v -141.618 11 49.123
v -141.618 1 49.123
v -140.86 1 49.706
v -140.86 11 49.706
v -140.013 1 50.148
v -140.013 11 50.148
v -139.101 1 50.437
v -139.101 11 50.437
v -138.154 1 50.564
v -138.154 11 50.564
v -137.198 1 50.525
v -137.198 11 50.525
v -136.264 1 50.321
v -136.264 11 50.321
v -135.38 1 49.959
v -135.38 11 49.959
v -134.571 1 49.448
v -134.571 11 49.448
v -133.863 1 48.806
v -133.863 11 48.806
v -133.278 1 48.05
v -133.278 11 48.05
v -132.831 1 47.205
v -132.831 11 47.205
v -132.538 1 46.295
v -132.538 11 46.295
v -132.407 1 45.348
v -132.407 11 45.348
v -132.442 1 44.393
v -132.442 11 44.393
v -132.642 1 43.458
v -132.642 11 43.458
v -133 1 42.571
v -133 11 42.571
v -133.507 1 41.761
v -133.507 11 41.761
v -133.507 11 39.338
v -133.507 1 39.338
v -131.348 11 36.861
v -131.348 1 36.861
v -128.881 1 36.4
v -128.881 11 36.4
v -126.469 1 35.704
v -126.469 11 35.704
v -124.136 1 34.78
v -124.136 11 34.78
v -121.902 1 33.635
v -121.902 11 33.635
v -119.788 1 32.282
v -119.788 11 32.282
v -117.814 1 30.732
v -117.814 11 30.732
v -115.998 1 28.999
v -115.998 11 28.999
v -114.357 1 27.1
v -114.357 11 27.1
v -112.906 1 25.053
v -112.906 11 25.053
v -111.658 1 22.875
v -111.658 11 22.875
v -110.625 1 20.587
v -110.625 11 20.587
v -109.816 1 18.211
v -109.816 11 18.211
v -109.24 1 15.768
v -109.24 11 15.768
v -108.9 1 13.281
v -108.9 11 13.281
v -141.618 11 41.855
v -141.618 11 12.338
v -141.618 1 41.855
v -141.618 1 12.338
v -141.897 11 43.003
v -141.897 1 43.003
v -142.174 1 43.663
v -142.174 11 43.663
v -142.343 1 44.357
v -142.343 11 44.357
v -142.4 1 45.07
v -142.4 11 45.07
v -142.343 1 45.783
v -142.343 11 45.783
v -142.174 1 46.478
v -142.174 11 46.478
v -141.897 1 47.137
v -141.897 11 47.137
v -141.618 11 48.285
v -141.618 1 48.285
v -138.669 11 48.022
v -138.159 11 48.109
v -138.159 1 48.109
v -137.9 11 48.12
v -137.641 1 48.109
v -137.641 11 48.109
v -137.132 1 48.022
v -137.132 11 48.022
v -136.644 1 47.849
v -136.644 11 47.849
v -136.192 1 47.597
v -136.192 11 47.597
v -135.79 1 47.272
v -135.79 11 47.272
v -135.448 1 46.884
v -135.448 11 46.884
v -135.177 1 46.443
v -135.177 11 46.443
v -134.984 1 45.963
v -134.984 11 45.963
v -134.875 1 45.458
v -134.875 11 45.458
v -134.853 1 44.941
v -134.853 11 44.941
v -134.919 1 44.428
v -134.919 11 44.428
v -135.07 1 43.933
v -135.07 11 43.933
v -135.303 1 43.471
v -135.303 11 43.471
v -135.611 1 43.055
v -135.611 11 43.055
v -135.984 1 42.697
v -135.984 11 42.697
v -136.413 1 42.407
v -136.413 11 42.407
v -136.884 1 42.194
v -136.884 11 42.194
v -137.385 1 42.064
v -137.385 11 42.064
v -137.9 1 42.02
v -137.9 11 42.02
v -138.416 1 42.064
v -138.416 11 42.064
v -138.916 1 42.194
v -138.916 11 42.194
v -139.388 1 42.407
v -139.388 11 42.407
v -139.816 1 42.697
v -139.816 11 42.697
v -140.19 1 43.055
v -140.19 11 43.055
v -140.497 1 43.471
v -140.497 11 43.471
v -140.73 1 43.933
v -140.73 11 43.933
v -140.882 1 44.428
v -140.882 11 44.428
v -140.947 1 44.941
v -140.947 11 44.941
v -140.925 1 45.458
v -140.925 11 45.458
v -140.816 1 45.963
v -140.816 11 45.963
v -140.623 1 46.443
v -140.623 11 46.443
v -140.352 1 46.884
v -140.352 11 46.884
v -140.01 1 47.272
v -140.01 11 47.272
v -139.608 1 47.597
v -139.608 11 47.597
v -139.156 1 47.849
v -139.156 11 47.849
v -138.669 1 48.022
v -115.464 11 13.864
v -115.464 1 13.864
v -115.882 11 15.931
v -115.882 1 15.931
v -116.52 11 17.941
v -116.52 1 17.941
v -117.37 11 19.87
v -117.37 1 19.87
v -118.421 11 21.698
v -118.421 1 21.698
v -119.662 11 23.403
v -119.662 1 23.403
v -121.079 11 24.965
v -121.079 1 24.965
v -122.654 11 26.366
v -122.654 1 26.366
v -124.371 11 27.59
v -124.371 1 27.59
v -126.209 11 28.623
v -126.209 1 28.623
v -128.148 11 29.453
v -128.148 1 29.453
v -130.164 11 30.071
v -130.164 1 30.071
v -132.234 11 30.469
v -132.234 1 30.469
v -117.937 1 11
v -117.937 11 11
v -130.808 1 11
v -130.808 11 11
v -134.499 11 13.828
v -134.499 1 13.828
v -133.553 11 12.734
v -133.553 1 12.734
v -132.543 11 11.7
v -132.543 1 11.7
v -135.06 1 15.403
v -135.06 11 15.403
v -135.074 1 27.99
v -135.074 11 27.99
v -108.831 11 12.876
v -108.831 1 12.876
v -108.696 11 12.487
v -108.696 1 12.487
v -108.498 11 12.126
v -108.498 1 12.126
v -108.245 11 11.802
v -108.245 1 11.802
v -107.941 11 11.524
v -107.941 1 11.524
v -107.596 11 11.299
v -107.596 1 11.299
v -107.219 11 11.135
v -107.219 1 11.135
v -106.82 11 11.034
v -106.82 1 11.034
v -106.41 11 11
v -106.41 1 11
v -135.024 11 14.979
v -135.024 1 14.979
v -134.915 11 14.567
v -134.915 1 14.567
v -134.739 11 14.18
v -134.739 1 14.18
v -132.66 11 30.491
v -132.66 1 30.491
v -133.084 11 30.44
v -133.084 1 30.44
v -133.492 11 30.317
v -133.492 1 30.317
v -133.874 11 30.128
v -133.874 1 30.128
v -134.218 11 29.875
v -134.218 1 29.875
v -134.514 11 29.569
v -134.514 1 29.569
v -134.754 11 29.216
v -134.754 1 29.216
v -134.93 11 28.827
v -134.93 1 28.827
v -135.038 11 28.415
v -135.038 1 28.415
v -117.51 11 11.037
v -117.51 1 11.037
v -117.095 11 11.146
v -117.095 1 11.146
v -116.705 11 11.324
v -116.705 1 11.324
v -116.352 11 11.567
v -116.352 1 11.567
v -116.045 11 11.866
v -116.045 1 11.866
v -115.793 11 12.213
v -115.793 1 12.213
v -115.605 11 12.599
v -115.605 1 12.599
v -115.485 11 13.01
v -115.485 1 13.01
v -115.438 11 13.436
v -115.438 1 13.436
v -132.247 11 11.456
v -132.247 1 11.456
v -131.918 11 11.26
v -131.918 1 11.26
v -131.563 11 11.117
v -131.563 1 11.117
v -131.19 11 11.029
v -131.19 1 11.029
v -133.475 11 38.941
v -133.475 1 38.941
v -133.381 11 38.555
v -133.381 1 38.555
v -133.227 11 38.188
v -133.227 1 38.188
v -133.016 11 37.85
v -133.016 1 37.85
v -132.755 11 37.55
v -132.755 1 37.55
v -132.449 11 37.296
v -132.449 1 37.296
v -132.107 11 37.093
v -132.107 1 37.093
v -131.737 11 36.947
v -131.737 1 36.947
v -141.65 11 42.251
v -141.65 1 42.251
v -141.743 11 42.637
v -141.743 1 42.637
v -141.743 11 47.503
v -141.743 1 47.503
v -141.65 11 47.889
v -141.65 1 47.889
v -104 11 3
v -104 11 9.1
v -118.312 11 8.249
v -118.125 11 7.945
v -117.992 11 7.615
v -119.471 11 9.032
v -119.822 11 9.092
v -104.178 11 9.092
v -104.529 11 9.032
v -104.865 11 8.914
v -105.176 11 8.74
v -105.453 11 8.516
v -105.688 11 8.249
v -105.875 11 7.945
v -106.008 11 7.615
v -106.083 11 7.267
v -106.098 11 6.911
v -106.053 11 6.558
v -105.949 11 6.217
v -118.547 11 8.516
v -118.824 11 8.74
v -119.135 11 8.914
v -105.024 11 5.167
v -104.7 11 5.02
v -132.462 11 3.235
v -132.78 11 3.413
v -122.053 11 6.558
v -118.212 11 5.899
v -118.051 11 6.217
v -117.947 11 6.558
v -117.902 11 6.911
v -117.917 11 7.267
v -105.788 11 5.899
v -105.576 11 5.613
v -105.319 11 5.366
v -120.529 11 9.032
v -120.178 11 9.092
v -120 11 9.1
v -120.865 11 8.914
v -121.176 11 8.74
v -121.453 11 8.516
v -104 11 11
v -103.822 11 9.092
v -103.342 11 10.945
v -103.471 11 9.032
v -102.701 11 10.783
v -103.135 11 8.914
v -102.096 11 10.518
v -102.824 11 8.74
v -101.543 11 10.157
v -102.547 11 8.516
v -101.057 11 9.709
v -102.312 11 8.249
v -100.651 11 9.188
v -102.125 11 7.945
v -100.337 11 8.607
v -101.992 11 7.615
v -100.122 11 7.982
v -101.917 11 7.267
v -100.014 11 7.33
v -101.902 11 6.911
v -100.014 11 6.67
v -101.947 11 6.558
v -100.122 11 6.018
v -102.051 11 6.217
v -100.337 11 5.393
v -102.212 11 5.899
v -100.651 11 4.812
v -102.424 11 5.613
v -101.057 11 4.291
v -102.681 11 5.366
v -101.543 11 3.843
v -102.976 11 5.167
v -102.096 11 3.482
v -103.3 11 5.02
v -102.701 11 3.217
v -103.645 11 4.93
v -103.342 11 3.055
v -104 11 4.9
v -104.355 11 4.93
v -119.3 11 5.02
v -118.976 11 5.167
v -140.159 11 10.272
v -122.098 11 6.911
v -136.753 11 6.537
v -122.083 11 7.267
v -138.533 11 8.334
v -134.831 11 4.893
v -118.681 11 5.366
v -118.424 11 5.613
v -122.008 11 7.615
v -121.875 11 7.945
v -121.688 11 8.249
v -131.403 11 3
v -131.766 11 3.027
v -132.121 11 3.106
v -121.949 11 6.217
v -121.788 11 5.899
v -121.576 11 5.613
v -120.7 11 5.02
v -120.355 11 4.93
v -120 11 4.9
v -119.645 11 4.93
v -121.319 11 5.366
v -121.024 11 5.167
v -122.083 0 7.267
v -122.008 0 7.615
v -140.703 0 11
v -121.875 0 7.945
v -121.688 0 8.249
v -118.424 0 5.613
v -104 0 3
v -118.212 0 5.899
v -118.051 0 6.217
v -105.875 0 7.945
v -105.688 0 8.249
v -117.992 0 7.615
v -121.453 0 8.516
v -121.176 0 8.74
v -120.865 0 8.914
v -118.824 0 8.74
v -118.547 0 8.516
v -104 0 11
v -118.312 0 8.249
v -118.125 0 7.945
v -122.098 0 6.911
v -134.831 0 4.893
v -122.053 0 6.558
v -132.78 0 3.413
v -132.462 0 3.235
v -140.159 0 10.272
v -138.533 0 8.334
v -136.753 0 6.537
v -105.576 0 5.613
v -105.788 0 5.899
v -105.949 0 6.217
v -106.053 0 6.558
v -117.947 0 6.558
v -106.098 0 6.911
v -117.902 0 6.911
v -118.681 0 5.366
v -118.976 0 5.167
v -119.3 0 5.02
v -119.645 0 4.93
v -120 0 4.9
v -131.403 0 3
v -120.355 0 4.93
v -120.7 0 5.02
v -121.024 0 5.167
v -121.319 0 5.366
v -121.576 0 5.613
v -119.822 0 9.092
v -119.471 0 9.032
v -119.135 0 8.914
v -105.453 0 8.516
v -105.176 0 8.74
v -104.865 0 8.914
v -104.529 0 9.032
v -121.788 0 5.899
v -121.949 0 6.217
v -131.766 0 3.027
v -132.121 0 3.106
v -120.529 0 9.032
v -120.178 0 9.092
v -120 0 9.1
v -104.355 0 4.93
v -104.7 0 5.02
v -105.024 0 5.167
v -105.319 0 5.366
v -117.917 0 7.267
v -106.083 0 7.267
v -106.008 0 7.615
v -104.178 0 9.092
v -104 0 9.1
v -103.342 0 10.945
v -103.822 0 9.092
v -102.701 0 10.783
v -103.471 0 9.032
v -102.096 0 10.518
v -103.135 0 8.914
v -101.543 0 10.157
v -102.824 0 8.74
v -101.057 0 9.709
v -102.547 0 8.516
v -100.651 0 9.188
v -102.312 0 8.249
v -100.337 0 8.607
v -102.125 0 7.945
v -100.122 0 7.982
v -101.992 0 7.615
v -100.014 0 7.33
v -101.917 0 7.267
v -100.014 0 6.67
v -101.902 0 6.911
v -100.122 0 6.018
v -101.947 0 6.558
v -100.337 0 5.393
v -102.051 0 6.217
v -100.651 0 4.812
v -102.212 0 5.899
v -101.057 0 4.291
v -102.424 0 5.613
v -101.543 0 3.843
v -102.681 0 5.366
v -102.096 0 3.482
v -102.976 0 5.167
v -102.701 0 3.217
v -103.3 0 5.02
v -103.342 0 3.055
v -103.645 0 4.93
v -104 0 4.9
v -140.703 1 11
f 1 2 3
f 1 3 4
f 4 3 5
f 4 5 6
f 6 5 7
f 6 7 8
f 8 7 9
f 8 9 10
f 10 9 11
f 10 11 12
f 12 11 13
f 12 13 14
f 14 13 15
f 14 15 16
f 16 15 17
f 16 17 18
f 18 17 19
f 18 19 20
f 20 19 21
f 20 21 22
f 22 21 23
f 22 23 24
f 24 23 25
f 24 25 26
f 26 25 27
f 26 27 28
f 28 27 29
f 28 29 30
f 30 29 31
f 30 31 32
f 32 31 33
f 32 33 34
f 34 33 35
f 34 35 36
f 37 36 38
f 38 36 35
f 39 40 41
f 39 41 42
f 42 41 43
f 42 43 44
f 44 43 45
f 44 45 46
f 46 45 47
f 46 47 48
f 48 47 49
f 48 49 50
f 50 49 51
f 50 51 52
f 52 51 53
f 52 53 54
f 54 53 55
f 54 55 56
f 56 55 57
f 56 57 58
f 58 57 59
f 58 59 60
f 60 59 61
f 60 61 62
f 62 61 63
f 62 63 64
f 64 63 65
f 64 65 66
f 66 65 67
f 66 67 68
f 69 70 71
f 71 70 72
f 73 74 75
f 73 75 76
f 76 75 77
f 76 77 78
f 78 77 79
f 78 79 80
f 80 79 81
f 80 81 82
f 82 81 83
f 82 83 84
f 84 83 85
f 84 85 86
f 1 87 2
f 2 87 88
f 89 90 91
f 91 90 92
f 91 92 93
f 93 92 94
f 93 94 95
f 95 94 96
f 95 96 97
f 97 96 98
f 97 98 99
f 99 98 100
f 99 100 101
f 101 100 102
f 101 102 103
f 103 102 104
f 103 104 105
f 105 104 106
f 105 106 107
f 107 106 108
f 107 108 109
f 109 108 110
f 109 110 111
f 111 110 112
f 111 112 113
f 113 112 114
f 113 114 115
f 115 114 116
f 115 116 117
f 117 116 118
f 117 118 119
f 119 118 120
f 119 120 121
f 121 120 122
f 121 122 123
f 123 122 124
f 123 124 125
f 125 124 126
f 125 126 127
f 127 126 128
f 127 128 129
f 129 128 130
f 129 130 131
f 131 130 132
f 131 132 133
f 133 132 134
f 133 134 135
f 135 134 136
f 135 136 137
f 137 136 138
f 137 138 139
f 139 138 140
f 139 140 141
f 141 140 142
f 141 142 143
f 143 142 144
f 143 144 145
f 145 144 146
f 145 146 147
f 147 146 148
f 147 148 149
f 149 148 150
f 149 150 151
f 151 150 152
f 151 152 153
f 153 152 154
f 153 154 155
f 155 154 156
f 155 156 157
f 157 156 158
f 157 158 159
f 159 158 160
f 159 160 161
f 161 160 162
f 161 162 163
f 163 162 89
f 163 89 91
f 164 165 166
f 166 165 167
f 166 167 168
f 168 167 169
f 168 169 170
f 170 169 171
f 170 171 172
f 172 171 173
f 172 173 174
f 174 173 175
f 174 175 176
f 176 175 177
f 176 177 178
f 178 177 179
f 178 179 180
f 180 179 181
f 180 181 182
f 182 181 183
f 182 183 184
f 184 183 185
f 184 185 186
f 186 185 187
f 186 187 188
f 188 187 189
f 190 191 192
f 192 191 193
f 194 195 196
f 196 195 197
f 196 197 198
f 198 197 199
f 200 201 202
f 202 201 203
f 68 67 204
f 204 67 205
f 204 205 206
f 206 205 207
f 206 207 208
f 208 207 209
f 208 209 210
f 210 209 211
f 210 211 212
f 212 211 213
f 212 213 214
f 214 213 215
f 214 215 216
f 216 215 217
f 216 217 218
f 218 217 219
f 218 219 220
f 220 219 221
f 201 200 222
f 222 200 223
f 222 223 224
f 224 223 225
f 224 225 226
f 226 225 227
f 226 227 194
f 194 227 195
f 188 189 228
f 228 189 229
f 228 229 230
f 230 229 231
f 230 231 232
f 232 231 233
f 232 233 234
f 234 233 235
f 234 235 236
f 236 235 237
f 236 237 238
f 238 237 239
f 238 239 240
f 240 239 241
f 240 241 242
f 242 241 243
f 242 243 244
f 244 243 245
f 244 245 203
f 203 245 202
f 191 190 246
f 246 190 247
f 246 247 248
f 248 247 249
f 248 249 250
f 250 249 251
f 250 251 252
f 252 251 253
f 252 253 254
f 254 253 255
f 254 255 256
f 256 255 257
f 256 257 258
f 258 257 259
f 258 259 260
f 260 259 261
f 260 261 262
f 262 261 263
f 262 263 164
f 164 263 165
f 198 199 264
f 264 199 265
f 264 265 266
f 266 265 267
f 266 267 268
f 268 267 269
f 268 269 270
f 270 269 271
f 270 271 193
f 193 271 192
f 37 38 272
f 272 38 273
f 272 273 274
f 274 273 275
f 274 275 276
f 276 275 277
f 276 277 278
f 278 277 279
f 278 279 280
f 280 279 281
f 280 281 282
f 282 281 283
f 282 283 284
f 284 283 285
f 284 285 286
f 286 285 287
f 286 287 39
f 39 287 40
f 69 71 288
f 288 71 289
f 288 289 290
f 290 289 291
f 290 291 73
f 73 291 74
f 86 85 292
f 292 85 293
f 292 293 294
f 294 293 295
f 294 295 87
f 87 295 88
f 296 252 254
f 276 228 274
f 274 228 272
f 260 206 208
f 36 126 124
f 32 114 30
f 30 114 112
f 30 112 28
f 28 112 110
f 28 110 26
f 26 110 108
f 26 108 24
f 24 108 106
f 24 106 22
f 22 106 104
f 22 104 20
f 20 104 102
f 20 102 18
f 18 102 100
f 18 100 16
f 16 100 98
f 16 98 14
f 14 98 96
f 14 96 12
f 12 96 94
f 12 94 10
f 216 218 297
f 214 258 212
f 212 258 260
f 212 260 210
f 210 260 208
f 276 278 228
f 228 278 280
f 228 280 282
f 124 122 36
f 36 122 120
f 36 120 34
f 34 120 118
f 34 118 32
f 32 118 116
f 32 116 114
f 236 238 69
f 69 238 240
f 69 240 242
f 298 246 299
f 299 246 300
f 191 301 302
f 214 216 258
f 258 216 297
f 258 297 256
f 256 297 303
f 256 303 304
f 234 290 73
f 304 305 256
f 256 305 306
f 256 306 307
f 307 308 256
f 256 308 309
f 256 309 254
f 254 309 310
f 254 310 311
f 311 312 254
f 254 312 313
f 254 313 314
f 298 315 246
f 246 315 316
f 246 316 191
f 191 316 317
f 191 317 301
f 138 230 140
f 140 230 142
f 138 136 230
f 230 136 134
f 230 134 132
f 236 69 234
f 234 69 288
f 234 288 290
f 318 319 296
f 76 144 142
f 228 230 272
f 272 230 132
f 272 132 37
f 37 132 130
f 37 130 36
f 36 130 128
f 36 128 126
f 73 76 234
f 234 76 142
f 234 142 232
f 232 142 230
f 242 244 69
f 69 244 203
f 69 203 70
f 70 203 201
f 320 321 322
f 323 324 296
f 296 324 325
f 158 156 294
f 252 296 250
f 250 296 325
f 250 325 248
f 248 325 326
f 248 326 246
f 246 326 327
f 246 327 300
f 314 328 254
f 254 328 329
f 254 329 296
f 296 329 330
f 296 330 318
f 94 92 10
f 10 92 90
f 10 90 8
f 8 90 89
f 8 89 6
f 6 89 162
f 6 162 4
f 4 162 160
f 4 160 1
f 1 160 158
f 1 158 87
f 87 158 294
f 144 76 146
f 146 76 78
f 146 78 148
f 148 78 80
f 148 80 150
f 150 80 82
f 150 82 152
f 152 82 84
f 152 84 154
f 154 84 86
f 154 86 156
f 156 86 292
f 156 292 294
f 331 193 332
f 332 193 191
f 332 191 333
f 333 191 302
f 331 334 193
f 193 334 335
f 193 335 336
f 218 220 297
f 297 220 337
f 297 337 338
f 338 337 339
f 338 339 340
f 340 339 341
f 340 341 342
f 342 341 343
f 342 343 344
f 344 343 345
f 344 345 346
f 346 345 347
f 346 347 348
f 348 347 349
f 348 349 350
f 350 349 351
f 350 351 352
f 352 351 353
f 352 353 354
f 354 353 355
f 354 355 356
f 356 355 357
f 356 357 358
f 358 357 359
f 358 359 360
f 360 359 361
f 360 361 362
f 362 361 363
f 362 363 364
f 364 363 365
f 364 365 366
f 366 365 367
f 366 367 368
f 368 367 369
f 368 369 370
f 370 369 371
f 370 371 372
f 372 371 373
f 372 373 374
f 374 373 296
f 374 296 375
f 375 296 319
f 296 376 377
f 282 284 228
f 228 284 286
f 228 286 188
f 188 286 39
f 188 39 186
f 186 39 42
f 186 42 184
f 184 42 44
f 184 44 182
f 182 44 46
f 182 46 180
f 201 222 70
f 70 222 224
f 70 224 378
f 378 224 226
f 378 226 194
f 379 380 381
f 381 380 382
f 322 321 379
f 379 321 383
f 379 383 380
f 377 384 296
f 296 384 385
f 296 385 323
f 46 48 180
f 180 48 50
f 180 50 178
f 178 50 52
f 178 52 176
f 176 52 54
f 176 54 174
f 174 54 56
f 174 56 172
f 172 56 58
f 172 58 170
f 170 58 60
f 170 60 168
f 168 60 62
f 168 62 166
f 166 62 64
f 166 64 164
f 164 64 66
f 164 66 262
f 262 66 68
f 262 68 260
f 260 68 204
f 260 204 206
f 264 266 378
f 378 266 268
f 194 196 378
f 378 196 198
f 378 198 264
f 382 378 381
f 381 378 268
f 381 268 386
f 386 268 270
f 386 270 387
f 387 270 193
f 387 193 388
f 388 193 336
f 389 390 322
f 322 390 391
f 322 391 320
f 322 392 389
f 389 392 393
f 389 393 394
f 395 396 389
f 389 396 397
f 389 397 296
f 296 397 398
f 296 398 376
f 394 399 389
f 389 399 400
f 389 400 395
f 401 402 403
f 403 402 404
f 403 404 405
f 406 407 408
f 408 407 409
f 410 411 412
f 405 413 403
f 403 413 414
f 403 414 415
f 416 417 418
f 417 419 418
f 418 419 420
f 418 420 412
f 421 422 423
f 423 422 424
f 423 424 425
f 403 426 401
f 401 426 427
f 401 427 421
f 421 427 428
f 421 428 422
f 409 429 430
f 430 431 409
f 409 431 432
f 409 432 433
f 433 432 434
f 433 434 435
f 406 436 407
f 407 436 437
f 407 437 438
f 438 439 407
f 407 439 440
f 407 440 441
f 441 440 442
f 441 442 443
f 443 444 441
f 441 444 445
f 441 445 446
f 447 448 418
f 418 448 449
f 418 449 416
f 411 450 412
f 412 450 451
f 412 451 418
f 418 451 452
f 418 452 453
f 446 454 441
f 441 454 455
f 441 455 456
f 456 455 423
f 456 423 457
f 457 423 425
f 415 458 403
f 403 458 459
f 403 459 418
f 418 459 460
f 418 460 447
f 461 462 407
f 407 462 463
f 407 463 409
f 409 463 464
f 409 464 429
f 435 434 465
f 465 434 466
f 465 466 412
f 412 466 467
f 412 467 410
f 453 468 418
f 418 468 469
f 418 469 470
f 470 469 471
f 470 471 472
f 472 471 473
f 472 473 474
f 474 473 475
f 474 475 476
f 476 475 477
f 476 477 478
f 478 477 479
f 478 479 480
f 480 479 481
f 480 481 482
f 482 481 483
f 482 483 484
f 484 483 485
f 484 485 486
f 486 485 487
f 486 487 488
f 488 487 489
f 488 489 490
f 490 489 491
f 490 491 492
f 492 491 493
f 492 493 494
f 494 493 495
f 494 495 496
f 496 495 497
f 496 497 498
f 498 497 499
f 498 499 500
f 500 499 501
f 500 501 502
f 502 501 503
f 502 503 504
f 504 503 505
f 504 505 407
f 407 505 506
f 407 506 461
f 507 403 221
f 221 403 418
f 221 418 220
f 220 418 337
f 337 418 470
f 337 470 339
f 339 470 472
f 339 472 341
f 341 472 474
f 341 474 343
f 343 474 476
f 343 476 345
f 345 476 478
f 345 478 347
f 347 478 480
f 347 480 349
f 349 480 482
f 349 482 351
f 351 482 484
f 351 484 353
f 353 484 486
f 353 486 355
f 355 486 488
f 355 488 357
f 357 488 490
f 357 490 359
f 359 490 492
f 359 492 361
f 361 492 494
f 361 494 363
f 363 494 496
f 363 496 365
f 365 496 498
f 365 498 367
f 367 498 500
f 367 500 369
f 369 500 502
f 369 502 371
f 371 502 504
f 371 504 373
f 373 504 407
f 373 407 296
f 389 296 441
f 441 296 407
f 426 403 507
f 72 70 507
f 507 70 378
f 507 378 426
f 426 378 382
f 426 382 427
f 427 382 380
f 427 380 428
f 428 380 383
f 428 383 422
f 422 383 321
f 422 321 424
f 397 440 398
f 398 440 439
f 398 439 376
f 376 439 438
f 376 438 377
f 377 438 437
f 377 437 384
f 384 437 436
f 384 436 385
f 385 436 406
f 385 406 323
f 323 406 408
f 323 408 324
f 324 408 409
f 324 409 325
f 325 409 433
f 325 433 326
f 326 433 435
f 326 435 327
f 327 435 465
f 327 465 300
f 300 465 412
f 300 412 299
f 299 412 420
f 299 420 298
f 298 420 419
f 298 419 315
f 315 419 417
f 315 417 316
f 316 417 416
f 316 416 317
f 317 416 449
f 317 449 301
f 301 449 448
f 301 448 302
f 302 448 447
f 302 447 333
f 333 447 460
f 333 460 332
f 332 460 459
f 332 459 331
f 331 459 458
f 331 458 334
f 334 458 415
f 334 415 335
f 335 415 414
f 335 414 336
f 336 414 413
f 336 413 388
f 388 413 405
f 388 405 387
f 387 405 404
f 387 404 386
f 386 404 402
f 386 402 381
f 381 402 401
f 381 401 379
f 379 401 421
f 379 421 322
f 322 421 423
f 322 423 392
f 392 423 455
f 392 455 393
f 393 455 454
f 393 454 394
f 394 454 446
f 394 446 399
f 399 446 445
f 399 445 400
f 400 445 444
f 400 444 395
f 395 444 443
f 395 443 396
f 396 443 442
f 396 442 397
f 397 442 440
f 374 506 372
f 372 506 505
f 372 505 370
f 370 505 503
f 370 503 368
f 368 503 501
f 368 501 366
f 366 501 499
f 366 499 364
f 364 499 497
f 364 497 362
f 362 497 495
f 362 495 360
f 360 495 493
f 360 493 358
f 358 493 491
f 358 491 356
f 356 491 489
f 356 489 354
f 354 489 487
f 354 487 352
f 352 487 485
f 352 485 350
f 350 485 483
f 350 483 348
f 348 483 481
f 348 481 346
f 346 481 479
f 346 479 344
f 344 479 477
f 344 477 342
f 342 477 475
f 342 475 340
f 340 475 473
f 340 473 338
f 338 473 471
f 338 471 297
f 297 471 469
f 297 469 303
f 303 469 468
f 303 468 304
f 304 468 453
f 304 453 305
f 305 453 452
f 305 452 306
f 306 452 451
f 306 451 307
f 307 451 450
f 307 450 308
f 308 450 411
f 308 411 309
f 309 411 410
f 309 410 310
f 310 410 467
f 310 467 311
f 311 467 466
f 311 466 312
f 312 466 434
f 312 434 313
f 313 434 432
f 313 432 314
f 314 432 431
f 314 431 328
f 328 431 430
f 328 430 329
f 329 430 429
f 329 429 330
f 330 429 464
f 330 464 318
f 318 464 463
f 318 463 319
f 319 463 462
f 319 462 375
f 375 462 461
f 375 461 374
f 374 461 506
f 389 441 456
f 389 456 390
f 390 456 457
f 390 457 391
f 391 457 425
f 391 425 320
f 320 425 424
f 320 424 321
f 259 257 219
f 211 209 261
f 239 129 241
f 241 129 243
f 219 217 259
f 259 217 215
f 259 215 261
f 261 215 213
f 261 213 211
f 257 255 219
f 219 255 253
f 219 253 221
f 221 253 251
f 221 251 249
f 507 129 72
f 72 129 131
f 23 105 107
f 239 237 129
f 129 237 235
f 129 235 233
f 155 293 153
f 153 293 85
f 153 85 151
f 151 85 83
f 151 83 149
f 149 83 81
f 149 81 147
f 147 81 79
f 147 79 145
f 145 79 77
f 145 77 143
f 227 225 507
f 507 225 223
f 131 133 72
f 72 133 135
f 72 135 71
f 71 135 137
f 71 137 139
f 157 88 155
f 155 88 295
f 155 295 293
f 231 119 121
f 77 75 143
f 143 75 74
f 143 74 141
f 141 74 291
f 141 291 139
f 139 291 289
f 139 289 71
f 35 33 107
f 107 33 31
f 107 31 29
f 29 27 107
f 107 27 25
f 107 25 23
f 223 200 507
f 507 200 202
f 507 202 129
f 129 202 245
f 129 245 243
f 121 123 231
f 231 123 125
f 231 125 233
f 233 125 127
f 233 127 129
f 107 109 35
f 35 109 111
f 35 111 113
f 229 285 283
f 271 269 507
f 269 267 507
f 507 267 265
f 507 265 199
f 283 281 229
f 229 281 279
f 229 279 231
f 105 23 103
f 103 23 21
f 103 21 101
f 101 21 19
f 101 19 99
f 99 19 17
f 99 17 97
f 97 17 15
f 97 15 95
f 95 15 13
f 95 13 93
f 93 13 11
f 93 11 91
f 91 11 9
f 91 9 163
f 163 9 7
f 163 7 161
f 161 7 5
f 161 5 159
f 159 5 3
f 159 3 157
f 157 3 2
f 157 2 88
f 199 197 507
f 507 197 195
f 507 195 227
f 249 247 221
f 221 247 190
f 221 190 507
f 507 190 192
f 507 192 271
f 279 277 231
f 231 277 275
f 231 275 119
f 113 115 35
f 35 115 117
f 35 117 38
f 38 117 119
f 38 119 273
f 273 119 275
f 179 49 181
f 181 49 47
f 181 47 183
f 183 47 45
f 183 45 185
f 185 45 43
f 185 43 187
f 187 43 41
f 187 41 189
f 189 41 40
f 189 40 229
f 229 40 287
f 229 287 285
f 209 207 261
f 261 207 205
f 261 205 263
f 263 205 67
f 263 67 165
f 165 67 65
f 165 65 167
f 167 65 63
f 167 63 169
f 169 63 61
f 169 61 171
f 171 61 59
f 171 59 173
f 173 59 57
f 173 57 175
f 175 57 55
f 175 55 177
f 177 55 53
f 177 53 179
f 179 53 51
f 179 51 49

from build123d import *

# Parameters (mm, degrees)
SKETCH1_R           = 2.1
SKETCH1_R_2         = 3.05
BOSS_EXTRUDE1_DEPTH = 11
FILLET1_R           = 2.5
SKETCH3_W           = 62.051099289
SKETCH3_H           = 53.114404745
CUT_EXTRUDE2_DEPTH  = 1


with BuildPart() as part:
    # Sketch1 → Boss-Extrude1 (new body)
    with BuildSketch(Plane(origin=(0, 0, 0), x_dir=(1, 0, 0), z_dir=(0, 1, 0))):
        with BuildLine():
            Line((-141.618040472, -49.123128832), (-141.618040472, -47.605232566))
            ThreePointArc((-141.618040472, -47.605232566), (-142.400064406, -45.070147956), (-141.618040472, -42.535063347))
            Line((-141.618040472, -42.535063347), (-141.618040472, -12.337528489))
            ThreePointArc((-141.618040472, -12.337528489), (-137.391041816, -7.146645093), (-132.135757115, -2.999987309))
            Line((-132.135757115, -2.999987309), (-104.000008179, -2.999987309))
            ThreePointArc((-104.000008179, -2.999987309), (-100.000008179, -6.999987309), (-104.000008179, -10.999987309))
            Line((-104.000008179, -10.999987309), (-108.800450344, -10.999987309))
            ThreePointArc((-108.800450344, -10.999987309), (-115.958519489, -28.95773414), (-133.507163129, -37.067218191))
            Line((-133.507163129, -37.067218191), (-133.507163129, -41.760704141))
            ThreePointArc((-133.507163129, -41.760704141), (-134.203416554, -49.142591284), (-141.618040472, -49.123128832))
        make_face()
        with Locations(Location((-104.000008179, -6.999987309, 0), (0, 0, 270))):
            Circle(SKETCH1_R, mode=Mode.SUBTRACT)
        with Locations(Location((-120, -7, 0), (0, 0, 270))):
            Circle(SKETCH1_R, mode=Mode.SUBTRACT)
        with Locations(Location((-137.900064406, -45.070147956, 0), (0, 0, 270))):
            Circle(SKETCH1_R_2, mode=Mode.SUBTRACT)
        with BuildLine():
            Line((-115.253720782, -11.000000067), (-131.784308422, -11.000000067))
            ThreePointArc((-131.784308422, -11.000000067), (-133.511366358, -12.688858412), (-135.059388776, -14.543204177))
            Line((-135.059388776, -14.543204177), (-135.07674933, -30.650657269))
            ThreePointArc((-135.07674933, -30.650657269), (-121.070295096, -24.956188563), (-115.253720782, -11.000000067))
        make_face(mode=Mode.SUBTRACT)
    extrude(amount=BOSS_EXTRUDE1_DEPTH)

    # Fillet1
    fillet1_edges = [part.edges().sort_by_distance(p)[0] for p in [
        (-141.618040472, 5.5, 47.605232566),
        (-141.618040472, 5.5, 42.535063347),
        (-132.135757115, 5.5, 2.999987309),
        (-108.800450344, 5.5, 10.999987309),
        (-133.507163129, 5.5, 37.067218191),
        (-135.07674933, 5.5, 30.650657269),
        (-115.253720782, 5.5, 11.000000067),
        (-131.784308422, 5.5, 11.000000067),
        (-135.059388776, 5.5, 14.543204177),
    ]]
    fillet(fillet1_edges, radius=FILLET1_R)

    # Sketch3 → Cut-Extrude2 (cut)
    with BuildSketch(Plane.XZ):
        with Locations((-120.556091454, 37.557189682)):
            Rectangle(SKETCH3_W, SKETCH3_H)
    extrude(amount=-CUT_EXTRUDE2_DEPTH, mode=Mode.SUBTRACT)


solid = part.part
